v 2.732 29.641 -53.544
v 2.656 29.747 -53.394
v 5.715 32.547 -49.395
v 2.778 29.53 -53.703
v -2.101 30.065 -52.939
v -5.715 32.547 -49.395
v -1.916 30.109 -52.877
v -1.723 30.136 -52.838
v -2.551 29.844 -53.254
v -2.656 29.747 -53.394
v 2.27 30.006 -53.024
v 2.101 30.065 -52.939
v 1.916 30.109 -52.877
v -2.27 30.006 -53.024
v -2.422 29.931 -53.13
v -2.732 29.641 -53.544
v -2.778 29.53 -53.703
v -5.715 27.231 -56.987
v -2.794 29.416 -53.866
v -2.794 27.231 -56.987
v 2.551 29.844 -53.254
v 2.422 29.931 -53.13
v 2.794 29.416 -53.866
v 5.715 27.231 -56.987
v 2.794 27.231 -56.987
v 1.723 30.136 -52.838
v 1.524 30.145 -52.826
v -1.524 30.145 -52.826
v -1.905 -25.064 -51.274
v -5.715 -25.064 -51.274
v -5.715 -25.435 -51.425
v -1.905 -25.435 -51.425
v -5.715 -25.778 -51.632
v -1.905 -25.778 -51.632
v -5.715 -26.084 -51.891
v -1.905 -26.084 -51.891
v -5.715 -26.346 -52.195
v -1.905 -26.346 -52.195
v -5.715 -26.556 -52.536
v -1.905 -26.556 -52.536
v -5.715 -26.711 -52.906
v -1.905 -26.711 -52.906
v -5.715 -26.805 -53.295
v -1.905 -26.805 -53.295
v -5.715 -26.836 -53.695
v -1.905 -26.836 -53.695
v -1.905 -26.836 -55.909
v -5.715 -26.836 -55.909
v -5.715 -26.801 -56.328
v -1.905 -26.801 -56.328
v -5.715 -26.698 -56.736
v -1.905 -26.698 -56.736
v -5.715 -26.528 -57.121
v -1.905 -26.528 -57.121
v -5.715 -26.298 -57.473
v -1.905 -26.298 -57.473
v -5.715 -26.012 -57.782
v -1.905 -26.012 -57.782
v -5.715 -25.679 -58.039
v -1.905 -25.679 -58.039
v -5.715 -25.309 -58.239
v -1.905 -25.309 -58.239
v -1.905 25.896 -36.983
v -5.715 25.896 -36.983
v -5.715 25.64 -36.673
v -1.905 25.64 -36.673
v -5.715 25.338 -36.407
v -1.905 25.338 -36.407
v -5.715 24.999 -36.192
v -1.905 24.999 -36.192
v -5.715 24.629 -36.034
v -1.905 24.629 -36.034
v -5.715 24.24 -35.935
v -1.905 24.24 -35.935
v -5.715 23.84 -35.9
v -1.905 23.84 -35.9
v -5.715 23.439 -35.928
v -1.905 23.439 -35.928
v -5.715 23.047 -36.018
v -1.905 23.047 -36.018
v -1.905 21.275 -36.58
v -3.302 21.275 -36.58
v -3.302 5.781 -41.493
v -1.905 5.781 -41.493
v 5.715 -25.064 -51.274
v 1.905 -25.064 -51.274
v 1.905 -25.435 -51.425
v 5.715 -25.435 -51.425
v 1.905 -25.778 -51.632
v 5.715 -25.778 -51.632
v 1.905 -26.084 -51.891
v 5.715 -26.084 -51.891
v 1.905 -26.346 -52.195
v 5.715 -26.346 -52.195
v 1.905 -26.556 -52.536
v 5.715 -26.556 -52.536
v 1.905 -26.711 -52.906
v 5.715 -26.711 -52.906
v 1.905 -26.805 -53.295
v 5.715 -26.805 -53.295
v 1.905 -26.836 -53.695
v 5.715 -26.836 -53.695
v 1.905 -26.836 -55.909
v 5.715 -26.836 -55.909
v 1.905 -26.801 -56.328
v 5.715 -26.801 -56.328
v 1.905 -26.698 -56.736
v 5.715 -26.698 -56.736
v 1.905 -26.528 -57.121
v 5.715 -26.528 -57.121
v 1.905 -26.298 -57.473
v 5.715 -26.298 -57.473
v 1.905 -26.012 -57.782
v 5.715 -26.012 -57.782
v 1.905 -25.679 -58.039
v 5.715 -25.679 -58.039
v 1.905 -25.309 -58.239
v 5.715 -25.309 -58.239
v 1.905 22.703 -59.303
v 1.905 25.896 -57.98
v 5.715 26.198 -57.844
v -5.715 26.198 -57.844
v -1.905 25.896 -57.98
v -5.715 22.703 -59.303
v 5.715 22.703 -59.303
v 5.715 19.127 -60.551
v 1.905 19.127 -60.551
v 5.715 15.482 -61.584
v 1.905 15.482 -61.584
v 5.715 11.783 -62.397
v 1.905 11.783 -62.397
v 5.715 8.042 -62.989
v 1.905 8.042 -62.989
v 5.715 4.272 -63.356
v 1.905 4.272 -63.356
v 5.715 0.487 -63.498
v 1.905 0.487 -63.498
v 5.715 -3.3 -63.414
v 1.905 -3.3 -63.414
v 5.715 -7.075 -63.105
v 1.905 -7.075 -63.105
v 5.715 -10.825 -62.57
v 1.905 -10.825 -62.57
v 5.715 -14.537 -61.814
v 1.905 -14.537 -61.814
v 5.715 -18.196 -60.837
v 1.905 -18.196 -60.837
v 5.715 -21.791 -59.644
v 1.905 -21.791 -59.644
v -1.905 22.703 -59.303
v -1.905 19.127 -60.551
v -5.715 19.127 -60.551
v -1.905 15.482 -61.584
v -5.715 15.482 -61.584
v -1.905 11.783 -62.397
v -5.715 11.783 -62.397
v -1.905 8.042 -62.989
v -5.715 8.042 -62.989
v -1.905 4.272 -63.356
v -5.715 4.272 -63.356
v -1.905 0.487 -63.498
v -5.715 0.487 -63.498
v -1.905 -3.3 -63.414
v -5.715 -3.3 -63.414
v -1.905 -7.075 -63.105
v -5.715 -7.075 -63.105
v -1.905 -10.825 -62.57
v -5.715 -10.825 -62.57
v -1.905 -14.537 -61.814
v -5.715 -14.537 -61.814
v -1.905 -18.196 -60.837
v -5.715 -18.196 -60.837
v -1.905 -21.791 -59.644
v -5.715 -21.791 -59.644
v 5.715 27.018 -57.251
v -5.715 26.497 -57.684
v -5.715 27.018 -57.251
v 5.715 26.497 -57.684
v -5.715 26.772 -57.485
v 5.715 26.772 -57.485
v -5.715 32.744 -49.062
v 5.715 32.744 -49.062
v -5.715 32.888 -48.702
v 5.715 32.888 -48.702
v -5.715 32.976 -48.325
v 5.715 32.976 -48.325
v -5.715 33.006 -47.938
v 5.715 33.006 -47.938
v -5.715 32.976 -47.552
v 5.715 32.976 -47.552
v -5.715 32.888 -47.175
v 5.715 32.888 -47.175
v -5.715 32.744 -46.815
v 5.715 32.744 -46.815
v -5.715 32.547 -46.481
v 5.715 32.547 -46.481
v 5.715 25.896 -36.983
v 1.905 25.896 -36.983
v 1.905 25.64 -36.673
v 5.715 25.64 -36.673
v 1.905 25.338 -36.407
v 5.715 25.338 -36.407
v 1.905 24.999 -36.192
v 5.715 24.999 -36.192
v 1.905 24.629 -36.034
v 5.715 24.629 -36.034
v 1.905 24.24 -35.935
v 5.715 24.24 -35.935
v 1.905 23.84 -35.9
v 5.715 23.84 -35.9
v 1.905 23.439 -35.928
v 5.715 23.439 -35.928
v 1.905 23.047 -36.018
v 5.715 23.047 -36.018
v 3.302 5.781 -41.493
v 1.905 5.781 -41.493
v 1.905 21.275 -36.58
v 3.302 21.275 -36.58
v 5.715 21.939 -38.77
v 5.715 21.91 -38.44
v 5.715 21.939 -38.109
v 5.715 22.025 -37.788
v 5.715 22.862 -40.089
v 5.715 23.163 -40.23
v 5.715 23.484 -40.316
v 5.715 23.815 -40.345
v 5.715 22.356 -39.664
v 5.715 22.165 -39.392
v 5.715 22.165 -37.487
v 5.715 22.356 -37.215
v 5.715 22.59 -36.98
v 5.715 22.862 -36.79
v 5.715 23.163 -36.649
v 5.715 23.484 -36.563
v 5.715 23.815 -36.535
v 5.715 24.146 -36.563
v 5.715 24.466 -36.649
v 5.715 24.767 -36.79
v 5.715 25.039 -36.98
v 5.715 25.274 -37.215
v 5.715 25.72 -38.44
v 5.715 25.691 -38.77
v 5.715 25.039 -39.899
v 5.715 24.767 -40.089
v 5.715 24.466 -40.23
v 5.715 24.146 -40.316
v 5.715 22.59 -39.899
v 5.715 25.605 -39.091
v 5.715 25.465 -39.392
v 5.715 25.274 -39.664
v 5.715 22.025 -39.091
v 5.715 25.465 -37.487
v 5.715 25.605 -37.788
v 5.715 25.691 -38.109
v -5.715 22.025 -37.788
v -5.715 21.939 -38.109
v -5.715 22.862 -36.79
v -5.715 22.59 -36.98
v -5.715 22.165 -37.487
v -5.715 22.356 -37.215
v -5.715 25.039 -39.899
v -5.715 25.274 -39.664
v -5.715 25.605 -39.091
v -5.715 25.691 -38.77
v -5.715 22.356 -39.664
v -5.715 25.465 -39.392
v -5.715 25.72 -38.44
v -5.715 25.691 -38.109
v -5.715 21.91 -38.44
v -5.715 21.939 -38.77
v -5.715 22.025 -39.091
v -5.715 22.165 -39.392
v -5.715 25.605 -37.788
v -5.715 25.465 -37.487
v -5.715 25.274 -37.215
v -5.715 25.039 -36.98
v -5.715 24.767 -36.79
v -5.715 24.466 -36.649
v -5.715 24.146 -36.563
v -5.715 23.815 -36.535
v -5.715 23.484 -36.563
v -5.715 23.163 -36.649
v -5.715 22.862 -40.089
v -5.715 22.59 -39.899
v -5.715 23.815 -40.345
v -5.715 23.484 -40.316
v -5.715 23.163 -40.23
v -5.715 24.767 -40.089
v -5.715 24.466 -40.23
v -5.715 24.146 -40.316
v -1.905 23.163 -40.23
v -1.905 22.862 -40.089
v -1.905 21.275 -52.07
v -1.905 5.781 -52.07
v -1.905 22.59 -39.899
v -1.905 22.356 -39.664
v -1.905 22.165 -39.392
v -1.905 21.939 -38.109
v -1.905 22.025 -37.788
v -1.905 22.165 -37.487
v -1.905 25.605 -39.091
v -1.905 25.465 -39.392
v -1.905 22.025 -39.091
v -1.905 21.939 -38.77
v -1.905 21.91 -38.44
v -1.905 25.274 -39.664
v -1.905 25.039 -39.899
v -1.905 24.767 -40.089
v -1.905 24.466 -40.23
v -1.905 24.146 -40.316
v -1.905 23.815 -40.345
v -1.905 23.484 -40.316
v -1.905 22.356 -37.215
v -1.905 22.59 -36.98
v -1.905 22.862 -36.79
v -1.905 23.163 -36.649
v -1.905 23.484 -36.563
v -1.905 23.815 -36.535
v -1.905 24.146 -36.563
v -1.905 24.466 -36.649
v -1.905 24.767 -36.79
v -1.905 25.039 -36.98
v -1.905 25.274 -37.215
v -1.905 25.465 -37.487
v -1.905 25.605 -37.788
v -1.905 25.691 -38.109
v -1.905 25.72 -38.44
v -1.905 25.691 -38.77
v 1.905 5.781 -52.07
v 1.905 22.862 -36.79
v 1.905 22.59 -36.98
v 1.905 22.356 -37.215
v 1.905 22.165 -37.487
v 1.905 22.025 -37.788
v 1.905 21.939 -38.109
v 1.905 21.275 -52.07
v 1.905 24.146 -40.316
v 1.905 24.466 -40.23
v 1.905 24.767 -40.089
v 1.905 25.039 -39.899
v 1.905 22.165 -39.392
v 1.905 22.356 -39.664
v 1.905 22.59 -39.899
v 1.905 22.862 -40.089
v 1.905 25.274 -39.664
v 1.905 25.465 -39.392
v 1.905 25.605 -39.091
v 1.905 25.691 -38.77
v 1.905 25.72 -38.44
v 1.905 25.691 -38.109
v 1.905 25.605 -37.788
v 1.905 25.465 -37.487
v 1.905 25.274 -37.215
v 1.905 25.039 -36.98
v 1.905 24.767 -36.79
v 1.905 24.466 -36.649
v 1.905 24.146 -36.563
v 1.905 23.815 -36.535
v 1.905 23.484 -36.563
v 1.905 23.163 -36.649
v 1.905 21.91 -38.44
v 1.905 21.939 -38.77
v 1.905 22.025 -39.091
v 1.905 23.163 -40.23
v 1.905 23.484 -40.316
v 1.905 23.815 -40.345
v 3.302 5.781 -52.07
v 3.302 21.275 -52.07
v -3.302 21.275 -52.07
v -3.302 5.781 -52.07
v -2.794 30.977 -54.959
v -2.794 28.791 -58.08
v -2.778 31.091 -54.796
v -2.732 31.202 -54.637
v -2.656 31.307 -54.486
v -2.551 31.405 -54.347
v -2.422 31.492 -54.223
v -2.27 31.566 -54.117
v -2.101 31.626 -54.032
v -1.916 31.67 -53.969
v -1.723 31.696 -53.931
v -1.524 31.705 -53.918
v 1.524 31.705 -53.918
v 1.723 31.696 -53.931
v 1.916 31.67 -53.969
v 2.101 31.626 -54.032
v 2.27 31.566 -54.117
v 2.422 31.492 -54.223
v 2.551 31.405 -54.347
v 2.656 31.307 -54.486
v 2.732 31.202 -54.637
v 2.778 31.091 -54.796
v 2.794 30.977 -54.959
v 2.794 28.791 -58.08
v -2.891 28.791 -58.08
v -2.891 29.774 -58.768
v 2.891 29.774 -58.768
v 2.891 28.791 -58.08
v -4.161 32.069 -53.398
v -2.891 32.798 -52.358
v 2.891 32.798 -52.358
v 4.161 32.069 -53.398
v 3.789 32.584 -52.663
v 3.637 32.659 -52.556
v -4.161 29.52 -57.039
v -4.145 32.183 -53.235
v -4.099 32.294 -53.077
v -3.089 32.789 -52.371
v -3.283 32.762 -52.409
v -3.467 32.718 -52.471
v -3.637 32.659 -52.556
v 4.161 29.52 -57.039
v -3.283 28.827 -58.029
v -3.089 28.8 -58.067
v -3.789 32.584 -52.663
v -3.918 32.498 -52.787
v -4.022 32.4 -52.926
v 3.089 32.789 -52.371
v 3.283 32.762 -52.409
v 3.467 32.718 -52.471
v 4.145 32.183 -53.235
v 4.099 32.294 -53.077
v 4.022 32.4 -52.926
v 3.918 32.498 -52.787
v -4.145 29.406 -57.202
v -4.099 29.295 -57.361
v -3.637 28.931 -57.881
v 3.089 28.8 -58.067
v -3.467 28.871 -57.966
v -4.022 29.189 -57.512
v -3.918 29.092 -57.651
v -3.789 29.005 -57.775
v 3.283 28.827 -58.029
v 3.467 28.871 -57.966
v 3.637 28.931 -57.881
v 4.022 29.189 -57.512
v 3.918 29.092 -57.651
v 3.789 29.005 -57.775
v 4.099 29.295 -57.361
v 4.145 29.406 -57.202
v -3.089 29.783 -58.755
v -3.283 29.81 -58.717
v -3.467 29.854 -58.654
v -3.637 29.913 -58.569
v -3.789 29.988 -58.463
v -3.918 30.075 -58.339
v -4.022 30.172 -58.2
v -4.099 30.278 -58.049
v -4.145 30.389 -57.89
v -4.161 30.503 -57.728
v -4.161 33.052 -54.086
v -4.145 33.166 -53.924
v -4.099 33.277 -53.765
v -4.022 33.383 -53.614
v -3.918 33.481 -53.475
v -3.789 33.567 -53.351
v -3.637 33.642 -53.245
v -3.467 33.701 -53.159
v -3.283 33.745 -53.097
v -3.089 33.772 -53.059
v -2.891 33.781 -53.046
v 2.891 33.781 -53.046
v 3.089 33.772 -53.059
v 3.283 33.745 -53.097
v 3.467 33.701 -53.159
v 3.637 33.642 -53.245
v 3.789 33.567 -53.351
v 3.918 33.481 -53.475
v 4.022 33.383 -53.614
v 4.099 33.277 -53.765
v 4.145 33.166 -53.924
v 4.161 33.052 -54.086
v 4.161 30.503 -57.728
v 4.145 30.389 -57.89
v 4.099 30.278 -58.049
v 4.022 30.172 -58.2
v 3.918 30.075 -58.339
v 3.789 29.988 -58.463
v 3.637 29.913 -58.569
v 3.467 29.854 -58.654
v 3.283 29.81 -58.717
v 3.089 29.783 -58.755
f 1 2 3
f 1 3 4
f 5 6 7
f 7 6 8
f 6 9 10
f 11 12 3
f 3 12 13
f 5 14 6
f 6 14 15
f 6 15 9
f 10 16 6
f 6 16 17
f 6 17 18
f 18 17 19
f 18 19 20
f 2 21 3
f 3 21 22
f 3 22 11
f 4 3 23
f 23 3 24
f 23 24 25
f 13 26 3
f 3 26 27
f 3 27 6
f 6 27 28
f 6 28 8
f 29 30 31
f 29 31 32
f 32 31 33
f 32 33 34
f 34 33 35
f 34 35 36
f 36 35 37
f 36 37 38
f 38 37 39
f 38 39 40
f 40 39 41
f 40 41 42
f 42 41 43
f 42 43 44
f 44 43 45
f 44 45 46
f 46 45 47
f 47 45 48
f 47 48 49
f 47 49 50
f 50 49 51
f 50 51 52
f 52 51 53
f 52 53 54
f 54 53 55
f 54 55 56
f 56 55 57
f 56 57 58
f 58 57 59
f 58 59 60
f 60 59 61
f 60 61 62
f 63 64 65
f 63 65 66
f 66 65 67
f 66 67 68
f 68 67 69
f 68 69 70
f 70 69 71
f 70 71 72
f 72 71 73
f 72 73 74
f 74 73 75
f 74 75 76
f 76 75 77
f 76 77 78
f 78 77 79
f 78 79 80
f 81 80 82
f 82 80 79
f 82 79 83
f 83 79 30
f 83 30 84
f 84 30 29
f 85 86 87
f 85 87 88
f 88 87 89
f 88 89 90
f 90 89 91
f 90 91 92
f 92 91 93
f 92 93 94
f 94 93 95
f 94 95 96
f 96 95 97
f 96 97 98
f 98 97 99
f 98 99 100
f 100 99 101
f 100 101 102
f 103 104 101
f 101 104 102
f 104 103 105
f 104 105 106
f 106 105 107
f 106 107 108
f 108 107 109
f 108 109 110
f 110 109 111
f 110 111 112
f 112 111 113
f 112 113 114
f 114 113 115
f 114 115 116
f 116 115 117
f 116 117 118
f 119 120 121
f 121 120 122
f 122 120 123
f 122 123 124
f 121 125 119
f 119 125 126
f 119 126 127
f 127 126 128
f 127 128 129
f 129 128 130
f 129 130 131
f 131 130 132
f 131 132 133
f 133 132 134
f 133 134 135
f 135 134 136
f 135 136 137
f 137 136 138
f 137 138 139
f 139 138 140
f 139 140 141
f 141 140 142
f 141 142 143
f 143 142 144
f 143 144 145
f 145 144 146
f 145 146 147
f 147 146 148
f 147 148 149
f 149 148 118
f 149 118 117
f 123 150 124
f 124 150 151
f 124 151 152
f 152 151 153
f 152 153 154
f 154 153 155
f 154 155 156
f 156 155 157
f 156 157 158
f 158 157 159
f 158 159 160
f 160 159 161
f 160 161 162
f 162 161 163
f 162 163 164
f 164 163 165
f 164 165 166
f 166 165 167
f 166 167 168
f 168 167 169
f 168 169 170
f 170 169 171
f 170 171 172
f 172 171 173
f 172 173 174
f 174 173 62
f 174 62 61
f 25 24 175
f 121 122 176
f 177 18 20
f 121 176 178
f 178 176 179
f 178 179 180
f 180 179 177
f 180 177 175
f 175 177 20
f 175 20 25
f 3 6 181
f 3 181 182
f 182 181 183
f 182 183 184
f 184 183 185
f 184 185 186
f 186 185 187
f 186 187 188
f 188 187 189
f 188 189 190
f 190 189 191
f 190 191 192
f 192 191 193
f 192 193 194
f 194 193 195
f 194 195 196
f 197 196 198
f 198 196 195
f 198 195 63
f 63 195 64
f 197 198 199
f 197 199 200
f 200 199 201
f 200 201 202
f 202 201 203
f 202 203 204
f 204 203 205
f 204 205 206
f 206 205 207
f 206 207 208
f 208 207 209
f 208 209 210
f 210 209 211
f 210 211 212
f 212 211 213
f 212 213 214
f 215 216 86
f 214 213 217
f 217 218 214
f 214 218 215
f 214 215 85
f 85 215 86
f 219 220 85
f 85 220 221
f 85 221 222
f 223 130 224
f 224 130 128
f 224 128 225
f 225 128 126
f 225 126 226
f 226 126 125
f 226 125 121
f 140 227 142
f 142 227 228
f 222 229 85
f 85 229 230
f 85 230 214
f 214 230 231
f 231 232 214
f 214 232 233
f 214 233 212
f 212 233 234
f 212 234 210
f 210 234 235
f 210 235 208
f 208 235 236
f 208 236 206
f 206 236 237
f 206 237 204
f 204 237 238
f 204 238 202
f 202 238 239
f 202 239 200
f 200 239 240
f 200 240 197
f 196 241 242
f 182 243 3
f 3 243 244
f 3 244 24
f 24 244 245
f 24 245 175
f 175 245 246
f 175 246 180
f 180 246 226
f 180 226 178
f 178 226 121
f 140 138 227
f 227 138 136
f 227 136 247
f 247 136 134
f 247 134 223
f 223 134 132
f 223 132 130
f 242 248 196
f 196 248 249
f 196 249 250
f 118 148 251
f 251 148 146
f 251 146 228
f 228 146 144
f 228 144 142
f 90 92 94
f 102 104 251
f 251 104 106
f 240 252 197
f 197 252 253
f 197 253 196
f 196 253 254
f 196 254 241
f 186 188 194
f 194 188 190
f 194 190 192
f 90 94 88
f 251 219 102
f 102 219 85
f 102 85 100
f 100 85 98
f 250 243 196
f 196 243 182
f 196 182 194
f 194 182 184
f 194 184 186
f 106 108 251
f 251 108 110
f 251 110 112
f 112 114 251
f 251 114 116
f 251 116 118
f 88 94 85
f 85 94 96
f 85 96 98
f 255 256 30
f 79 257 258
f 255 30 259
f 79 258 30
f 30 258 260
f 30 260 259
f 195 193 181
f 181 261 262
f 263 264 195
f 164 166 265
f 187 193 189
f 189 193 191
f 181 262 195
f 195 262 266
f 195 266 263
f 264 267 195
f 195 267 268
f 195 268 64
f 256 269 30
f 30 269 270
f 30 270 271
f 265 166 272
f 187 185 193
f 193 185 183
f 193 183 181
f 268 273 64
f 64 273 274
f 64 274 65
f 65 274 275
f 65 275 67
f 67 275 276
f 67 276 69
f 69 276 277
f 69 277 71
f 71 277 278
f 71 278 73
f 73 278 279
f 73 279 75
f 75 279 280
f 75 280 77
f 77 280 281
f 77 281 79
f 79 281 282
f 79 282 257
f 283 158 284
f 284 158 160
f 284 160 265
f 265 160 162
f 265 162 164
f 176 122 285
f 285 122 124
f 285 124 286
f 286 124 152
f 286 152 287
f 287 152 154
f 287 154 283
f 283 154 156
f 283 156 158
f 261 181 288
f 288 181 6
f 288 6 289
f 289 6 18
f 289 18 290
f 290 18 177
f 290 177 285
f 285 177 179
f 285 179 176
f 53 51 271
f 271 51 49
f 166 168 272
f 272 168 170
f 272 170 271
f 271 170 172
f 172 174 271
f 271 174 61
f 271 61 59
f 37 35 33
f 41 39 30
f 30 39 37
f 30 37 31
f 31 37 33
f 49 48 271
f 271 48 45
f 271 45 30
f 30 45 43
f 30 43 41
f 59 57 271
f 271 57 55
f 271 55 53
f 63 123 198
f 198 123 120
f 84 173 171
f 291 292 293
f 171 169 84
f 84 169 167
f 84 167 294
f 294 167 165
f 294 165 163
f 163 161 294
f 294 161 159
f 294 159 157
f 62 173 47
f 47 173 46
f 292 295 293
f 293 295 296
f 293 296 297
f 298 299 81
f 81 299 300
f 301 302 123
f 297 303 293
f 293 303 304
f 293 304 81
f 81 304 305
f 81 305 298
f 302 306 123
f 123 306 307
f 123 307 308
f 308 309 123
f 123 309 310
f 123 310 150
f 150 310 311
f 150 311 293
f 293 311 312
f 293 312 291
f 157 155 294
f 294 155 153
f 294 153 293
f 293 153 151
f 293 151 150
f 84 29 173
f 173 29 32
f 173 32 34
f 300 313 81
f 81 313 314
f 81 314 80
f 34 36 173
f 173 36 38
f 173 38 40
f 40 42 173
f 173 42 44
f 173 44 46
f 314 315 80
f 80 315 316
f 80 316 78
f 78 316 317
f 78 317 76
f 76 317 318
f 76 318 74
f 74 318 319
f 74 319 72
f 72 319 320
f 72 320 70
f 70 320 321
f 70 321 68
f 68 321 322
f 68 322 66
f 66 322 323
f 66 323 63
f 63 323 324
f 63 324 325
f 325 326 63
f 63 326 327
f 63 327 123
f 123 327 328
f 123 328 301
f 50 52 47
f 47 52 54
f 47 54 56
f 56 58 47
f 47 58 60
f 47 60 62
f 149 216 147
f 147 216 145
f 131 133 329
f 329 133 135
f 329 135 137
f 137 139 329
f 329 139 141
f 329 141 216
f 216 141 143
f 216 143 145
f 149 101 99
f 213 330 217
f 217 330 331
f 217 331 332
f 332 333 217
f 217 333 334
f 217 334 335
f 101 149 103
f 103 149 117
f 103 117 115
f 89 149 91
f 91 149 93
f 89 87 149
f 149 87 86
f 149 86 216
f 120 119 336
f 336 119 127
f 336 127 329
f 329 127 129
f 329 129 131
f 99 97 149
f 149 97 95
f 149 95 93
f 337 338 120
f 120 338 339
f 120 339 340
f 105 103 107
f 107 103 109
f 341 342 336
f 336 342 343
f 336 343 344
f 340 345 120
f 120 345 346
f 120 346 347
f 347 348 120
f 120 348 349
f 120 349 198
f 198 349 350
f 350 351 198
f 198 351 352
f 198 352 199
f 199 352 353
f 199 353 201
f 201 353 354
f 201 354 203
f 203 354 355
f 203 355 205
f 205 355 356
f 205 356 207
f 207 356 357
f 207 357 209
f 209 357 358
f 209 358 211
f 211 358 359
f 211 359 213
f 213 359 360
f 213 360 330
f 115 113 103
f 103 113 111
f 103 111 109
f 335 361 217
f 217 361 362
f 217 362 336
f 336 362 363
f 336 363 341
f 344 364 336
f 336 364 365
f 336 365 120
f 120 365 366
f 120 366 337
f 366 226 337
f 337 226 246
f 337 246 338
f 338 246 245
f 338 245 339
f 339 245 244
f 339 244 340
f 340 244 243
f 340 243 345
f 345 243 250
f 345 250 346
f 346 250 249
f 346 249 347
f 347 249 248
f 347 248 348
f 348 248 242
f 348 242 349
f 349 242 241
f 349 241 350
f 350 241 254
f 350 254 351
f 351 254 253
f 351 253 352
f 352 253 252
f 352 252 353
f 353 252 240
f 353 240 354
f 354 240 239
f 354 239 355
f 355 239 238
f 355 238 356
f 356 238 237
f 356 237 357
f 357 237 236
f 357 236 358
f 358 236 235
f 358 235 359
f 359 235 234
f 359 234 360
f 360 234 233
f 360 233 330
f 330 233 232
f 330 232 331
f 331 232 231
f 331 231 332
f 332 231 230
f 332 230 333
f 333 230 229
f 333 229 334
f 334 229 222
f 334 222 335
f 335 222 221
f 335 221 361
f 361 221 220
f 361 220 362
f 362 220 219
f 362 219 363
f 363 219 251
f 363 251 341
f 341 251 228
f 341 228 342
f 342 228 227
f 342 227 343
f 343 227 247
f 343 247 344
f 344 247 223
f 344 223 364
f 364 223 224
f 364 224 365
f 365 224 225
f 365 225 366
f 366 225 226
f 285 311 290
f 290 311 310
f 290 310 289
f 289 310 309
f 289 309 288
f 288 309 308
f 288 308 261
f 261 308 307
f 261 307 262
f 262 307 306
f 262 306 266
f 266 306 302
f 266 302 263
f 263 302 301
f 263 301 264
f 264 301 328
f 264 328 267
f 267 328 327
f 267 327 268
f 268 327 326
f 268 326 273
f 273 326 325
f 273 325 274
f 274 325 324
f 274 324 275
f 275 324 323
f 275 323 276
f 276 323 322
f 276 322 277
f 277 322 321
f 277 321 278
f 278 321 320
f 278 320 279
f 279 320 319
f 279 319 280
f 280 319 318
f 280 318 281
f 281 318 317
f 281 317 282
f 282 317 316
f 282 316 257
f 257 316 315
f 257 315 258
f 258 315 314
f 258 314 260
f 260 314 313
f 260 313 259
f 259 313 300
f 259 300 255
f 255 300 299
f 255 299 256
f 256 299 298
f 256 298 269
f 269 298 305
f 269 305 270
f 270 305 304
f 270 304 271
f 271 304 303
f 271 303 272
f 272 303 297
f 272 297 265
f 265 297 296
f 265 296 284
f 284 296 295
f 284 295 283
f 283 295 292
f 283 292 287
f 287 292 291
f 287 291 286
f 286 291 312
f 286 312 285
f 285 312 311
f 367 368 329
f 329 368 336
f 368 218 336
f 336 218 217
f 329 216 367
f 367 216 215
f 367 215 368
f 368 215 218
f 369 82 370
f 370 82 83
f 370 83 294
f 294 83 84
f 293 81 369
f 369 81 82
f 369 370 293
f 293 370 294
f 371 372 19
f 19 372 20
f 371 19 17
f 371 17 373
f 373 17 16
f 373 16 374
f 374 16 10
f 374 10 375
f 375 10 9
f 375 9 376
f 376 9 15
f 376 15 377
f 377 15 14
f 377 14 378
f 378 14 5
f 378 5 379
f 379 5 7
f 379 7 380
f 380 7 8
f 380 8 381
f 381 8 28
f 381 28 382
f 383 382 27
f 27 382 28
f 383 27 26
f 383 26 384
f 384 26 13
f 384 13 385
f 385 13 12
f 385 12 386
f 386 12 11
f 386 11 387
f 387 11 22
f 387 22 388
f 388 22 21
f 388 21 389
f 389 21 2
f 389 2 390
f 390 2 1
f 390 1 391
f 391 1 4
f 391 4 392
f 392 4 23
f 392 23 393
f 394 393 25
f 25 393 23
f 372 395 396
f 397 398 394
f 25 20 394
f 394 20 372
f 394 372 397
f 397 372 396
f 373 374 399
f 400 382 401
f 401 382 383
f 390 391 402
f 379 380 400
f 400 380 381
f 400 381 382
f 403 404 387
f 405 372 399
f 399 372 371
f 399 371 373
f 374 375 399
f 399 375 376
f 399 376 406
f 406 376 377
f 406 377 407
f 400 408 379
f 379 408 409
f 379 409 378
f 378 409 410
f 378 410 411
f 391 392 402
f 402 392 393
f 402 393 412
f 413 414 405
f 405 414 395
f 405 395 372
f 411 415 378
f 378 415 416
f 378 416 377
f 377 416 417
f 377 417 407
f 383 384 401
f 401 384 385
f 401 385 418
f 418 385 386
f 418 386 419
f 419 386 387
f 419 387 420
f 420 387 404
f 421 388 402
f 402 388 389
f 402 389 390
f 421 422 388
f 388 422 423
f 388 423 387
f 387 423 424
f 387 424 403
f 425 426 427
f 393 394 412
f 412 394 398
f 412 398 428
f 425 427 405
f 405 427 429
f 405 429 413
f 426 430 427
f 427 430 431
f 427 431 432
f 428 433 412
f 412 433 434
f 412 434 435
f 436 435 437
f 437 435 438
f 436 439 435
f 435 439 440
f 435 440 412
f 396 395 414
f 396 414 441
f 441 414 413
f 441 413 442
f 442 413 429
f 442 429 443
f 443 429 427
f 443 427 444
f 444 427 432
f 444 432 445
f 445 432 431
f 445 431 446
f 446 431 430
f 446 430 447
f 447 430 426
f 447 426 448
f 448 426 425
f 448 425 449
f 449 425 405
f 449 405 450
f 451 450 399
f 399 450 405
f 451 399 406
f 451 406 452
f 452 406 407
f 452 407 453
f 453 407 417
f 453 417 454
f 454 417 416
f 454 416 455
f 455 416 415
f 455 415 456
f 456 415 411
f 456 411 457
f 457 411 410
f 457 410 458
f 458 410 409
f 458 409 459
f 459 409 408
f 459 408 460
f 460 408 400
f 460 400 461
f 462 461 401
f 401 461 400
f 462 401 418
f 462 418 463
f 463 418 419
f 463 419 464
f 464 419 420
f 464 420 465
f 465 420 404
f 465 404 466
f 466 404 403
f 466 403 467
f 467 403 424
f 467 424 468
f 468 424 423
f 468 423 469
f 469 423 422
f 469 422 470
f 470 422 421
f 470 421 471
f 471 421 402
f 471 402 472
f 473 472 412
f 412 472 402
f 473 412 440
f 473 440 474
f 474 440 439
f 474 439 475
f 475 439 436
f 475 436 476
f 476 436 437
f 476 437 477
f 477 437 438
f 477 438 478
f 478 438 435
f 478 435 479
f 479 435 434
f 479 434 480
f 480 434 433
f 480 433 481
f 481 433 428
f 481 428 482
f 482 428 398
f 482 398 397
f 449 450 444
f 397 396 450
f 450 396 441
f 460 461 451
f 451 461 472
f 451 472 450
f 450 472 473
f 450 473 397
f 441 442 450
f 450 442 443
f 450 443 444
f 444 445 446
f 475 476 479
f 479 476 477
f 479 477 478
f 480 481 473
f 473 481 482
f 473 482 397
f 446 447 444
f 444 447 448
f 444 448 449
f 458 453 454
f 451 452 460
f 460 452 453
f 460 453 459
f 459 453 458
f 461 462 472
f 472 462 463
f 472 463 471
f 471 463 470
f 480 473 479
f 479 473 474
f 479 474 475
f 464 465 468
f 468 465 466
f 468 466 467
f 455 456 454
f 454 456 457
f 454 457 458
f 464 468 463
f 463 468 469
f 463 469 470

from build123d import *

# Parameters (mm, degrees)
BOSS_EXTRUDE1_DEPTH = 5.715
SKETCH4_W           = 3.81
SKETCH4_H           = 55.271796861
CUT_EXTRUDE3_DEPTH  = 72.793515752
SKETCH6_R           = 1.905
CUT_EXTRUDE5_DEPTH  = 73.472702303
SKETCH5_W           = 6.604
SKETCH5_H           = 15.494
CUT_EXTRUDE4_DEPTH  = 52.07
BOSS_EXTRUDE2_DEPTH = 1.905
BOSS_EXTRUDE3_DEPTH = 1.2


with BuildPart() as part:
    # Sketch1 → Boss-Extrude1 (new, symmetric)
    with BuildSketch(Plane(origin=(0, 0, 0), x_dir=(0, 0, -1), z_dir=(1, 0, 0))):
        with BuildLine():
            Line((56.986930037, 27.2309067), (49.395231729, 32.546671083))
            ThreePointArc((49.395231729, 32.546671083), (47.938347581, 33.00602489), (46.481463433, 32.546671083))
            Line((46.481463433, 32.546671083), (36.982659893, 25.89553724))
            ThreePointArc((36.982659893, 25.89553724), (36.033680051, 24.629396088), (36.018345244, 23.047169493))
            Line((36.018345244, 23.047169493), (51.273584689, -25.063981175))
            ThreePointArc((51.273584689, -25.063981175), (52.194518967, -26.3458465), (53.694783485, -26.836259621))
            Line((53.694783485, -26.836259621), (55.908973953, -26.836259621))
            ThreePointArc((55.908973953, -26.836259621), (57.301856909, -26.420283413), (58.238514534, -25.308603771))
            ThreePointArc((58.238514534, -25.308603771), (63.498135482, 0.4866111), (57.843797801, 26.198188029))
            ThreePointArc((57.843797801, 26.198188029), (57.484796778, 26.772157225), (56.986930037, 27.2309067))
        make_face()
    extrude(amount=BOSS_EXTRUDE1_DEPTH, both=True)

    # Sketch4 → Cut-Extrude3 (cut, through all)
    with BuildSketch(Plane.XY):
        with Locations((0, -1.74036119)):
            Rectangle(SKETCH4_W, SKETCH4_H)
    extrude(amount=-CUT_EXTRUDE3_DEPTH, mode=Mode.SUBTRACT)

    # Sketch6 → Cut-Extrude5 (cut, through all)
    with BuildSketch(Plane(origin=(5.715, 0, 0), x_dir=(0, 0, -1), z_dir=(1, 0, 0))):
        with Locations((38.439544041, 23.814891048)):
            Circle(SKETCH6_R)
    extrude(amount=-CUT_EXTRUDE5_DEPTH, mode=Mode.SUBTRACT)

    # Sketch5 → Cut-Extrude4 (cut)
    with BuildSketch(Plane.XY):
        with Locations((0, 13.527891048)):
            Rectangle(SKETCH5_W, SKETCH5_H)
    extrude(amount=-CUT_EXTRUDE4_DEPTH, mode=Mode.SUBTRACT)

    # Sketch7 → Boss-Extrude2 (add)
    with BuildSketch(Plane(origin=(0, 45.047311475, -31.542467071), x_dir=(1, 0, 0), z_dir=(0, 0.8191520442889956, -0.5735764363510407))):
        with BuildLine():
            Line((1.524, 25.981953814), (-1.524, 25.981953814))
            ThreePointArc((-1.524, 25.981953814), (-2.422025612, 26.353928202), (-2.794, 27.251953814))
            Line((-2.794, 27.251953814), (-2.794, 31.061953814))
            Line((-2.794, 31.061953814), (2.794, 31.061953814))
            Line((2.794, 31.061953814), (2.794, 27.251953814))
            ThreePointArc((2.794, 27.251953814), (2.422025612, 26.353928202), (1.524, 25.981953814))
        make_face()
    extrude(amount=BOSS_EXTRUDE2_DEPTH)

    # Sketch9 → Boss-Extrude3 (add)
    with BuildSketch(Plane(origin=(0, 46.607796119, -32.635130182), x_dir=(1, 0, 0), z_dir=(0, 0.8191520442889956, -0.5735764363510407))):
        with BuildLine():
            Line((2.890823379, 31.061953814), (-2.890823379, 31.061953814))
            ThreePointArc((-2.890823379, 31.061953814), (-3.788848991, 30.689979426), (-4.160823379, 29.791953814))
            Line((-4.160823379, 29.791953814), (-4.160823379, 25.346953814))
            ThreePointArc((-4.160823379, 25.346953814), (-3.788848991, 24.448928202), (-2.890823379, 24.076953814))
            Line((-2.890823379, 24.076953814), (2.890823379, 24.076953814))
            ThreePointArc((2.890823379, 24.076953814), (3.788848991, 24.448928202), (4.160823379, 25.346953814))
            Line((4.160823379, 25.346953814), (4.160823379, 29.791953814))
            ThreePointArc((4.160823379, 29.791953814), (3.788848991, 30.689979426), (2.890823379, 31.061953814))
        make_face()
    extrude(amount=BOSS_EXTRUDE3_DEPTH)


solid = part.part
